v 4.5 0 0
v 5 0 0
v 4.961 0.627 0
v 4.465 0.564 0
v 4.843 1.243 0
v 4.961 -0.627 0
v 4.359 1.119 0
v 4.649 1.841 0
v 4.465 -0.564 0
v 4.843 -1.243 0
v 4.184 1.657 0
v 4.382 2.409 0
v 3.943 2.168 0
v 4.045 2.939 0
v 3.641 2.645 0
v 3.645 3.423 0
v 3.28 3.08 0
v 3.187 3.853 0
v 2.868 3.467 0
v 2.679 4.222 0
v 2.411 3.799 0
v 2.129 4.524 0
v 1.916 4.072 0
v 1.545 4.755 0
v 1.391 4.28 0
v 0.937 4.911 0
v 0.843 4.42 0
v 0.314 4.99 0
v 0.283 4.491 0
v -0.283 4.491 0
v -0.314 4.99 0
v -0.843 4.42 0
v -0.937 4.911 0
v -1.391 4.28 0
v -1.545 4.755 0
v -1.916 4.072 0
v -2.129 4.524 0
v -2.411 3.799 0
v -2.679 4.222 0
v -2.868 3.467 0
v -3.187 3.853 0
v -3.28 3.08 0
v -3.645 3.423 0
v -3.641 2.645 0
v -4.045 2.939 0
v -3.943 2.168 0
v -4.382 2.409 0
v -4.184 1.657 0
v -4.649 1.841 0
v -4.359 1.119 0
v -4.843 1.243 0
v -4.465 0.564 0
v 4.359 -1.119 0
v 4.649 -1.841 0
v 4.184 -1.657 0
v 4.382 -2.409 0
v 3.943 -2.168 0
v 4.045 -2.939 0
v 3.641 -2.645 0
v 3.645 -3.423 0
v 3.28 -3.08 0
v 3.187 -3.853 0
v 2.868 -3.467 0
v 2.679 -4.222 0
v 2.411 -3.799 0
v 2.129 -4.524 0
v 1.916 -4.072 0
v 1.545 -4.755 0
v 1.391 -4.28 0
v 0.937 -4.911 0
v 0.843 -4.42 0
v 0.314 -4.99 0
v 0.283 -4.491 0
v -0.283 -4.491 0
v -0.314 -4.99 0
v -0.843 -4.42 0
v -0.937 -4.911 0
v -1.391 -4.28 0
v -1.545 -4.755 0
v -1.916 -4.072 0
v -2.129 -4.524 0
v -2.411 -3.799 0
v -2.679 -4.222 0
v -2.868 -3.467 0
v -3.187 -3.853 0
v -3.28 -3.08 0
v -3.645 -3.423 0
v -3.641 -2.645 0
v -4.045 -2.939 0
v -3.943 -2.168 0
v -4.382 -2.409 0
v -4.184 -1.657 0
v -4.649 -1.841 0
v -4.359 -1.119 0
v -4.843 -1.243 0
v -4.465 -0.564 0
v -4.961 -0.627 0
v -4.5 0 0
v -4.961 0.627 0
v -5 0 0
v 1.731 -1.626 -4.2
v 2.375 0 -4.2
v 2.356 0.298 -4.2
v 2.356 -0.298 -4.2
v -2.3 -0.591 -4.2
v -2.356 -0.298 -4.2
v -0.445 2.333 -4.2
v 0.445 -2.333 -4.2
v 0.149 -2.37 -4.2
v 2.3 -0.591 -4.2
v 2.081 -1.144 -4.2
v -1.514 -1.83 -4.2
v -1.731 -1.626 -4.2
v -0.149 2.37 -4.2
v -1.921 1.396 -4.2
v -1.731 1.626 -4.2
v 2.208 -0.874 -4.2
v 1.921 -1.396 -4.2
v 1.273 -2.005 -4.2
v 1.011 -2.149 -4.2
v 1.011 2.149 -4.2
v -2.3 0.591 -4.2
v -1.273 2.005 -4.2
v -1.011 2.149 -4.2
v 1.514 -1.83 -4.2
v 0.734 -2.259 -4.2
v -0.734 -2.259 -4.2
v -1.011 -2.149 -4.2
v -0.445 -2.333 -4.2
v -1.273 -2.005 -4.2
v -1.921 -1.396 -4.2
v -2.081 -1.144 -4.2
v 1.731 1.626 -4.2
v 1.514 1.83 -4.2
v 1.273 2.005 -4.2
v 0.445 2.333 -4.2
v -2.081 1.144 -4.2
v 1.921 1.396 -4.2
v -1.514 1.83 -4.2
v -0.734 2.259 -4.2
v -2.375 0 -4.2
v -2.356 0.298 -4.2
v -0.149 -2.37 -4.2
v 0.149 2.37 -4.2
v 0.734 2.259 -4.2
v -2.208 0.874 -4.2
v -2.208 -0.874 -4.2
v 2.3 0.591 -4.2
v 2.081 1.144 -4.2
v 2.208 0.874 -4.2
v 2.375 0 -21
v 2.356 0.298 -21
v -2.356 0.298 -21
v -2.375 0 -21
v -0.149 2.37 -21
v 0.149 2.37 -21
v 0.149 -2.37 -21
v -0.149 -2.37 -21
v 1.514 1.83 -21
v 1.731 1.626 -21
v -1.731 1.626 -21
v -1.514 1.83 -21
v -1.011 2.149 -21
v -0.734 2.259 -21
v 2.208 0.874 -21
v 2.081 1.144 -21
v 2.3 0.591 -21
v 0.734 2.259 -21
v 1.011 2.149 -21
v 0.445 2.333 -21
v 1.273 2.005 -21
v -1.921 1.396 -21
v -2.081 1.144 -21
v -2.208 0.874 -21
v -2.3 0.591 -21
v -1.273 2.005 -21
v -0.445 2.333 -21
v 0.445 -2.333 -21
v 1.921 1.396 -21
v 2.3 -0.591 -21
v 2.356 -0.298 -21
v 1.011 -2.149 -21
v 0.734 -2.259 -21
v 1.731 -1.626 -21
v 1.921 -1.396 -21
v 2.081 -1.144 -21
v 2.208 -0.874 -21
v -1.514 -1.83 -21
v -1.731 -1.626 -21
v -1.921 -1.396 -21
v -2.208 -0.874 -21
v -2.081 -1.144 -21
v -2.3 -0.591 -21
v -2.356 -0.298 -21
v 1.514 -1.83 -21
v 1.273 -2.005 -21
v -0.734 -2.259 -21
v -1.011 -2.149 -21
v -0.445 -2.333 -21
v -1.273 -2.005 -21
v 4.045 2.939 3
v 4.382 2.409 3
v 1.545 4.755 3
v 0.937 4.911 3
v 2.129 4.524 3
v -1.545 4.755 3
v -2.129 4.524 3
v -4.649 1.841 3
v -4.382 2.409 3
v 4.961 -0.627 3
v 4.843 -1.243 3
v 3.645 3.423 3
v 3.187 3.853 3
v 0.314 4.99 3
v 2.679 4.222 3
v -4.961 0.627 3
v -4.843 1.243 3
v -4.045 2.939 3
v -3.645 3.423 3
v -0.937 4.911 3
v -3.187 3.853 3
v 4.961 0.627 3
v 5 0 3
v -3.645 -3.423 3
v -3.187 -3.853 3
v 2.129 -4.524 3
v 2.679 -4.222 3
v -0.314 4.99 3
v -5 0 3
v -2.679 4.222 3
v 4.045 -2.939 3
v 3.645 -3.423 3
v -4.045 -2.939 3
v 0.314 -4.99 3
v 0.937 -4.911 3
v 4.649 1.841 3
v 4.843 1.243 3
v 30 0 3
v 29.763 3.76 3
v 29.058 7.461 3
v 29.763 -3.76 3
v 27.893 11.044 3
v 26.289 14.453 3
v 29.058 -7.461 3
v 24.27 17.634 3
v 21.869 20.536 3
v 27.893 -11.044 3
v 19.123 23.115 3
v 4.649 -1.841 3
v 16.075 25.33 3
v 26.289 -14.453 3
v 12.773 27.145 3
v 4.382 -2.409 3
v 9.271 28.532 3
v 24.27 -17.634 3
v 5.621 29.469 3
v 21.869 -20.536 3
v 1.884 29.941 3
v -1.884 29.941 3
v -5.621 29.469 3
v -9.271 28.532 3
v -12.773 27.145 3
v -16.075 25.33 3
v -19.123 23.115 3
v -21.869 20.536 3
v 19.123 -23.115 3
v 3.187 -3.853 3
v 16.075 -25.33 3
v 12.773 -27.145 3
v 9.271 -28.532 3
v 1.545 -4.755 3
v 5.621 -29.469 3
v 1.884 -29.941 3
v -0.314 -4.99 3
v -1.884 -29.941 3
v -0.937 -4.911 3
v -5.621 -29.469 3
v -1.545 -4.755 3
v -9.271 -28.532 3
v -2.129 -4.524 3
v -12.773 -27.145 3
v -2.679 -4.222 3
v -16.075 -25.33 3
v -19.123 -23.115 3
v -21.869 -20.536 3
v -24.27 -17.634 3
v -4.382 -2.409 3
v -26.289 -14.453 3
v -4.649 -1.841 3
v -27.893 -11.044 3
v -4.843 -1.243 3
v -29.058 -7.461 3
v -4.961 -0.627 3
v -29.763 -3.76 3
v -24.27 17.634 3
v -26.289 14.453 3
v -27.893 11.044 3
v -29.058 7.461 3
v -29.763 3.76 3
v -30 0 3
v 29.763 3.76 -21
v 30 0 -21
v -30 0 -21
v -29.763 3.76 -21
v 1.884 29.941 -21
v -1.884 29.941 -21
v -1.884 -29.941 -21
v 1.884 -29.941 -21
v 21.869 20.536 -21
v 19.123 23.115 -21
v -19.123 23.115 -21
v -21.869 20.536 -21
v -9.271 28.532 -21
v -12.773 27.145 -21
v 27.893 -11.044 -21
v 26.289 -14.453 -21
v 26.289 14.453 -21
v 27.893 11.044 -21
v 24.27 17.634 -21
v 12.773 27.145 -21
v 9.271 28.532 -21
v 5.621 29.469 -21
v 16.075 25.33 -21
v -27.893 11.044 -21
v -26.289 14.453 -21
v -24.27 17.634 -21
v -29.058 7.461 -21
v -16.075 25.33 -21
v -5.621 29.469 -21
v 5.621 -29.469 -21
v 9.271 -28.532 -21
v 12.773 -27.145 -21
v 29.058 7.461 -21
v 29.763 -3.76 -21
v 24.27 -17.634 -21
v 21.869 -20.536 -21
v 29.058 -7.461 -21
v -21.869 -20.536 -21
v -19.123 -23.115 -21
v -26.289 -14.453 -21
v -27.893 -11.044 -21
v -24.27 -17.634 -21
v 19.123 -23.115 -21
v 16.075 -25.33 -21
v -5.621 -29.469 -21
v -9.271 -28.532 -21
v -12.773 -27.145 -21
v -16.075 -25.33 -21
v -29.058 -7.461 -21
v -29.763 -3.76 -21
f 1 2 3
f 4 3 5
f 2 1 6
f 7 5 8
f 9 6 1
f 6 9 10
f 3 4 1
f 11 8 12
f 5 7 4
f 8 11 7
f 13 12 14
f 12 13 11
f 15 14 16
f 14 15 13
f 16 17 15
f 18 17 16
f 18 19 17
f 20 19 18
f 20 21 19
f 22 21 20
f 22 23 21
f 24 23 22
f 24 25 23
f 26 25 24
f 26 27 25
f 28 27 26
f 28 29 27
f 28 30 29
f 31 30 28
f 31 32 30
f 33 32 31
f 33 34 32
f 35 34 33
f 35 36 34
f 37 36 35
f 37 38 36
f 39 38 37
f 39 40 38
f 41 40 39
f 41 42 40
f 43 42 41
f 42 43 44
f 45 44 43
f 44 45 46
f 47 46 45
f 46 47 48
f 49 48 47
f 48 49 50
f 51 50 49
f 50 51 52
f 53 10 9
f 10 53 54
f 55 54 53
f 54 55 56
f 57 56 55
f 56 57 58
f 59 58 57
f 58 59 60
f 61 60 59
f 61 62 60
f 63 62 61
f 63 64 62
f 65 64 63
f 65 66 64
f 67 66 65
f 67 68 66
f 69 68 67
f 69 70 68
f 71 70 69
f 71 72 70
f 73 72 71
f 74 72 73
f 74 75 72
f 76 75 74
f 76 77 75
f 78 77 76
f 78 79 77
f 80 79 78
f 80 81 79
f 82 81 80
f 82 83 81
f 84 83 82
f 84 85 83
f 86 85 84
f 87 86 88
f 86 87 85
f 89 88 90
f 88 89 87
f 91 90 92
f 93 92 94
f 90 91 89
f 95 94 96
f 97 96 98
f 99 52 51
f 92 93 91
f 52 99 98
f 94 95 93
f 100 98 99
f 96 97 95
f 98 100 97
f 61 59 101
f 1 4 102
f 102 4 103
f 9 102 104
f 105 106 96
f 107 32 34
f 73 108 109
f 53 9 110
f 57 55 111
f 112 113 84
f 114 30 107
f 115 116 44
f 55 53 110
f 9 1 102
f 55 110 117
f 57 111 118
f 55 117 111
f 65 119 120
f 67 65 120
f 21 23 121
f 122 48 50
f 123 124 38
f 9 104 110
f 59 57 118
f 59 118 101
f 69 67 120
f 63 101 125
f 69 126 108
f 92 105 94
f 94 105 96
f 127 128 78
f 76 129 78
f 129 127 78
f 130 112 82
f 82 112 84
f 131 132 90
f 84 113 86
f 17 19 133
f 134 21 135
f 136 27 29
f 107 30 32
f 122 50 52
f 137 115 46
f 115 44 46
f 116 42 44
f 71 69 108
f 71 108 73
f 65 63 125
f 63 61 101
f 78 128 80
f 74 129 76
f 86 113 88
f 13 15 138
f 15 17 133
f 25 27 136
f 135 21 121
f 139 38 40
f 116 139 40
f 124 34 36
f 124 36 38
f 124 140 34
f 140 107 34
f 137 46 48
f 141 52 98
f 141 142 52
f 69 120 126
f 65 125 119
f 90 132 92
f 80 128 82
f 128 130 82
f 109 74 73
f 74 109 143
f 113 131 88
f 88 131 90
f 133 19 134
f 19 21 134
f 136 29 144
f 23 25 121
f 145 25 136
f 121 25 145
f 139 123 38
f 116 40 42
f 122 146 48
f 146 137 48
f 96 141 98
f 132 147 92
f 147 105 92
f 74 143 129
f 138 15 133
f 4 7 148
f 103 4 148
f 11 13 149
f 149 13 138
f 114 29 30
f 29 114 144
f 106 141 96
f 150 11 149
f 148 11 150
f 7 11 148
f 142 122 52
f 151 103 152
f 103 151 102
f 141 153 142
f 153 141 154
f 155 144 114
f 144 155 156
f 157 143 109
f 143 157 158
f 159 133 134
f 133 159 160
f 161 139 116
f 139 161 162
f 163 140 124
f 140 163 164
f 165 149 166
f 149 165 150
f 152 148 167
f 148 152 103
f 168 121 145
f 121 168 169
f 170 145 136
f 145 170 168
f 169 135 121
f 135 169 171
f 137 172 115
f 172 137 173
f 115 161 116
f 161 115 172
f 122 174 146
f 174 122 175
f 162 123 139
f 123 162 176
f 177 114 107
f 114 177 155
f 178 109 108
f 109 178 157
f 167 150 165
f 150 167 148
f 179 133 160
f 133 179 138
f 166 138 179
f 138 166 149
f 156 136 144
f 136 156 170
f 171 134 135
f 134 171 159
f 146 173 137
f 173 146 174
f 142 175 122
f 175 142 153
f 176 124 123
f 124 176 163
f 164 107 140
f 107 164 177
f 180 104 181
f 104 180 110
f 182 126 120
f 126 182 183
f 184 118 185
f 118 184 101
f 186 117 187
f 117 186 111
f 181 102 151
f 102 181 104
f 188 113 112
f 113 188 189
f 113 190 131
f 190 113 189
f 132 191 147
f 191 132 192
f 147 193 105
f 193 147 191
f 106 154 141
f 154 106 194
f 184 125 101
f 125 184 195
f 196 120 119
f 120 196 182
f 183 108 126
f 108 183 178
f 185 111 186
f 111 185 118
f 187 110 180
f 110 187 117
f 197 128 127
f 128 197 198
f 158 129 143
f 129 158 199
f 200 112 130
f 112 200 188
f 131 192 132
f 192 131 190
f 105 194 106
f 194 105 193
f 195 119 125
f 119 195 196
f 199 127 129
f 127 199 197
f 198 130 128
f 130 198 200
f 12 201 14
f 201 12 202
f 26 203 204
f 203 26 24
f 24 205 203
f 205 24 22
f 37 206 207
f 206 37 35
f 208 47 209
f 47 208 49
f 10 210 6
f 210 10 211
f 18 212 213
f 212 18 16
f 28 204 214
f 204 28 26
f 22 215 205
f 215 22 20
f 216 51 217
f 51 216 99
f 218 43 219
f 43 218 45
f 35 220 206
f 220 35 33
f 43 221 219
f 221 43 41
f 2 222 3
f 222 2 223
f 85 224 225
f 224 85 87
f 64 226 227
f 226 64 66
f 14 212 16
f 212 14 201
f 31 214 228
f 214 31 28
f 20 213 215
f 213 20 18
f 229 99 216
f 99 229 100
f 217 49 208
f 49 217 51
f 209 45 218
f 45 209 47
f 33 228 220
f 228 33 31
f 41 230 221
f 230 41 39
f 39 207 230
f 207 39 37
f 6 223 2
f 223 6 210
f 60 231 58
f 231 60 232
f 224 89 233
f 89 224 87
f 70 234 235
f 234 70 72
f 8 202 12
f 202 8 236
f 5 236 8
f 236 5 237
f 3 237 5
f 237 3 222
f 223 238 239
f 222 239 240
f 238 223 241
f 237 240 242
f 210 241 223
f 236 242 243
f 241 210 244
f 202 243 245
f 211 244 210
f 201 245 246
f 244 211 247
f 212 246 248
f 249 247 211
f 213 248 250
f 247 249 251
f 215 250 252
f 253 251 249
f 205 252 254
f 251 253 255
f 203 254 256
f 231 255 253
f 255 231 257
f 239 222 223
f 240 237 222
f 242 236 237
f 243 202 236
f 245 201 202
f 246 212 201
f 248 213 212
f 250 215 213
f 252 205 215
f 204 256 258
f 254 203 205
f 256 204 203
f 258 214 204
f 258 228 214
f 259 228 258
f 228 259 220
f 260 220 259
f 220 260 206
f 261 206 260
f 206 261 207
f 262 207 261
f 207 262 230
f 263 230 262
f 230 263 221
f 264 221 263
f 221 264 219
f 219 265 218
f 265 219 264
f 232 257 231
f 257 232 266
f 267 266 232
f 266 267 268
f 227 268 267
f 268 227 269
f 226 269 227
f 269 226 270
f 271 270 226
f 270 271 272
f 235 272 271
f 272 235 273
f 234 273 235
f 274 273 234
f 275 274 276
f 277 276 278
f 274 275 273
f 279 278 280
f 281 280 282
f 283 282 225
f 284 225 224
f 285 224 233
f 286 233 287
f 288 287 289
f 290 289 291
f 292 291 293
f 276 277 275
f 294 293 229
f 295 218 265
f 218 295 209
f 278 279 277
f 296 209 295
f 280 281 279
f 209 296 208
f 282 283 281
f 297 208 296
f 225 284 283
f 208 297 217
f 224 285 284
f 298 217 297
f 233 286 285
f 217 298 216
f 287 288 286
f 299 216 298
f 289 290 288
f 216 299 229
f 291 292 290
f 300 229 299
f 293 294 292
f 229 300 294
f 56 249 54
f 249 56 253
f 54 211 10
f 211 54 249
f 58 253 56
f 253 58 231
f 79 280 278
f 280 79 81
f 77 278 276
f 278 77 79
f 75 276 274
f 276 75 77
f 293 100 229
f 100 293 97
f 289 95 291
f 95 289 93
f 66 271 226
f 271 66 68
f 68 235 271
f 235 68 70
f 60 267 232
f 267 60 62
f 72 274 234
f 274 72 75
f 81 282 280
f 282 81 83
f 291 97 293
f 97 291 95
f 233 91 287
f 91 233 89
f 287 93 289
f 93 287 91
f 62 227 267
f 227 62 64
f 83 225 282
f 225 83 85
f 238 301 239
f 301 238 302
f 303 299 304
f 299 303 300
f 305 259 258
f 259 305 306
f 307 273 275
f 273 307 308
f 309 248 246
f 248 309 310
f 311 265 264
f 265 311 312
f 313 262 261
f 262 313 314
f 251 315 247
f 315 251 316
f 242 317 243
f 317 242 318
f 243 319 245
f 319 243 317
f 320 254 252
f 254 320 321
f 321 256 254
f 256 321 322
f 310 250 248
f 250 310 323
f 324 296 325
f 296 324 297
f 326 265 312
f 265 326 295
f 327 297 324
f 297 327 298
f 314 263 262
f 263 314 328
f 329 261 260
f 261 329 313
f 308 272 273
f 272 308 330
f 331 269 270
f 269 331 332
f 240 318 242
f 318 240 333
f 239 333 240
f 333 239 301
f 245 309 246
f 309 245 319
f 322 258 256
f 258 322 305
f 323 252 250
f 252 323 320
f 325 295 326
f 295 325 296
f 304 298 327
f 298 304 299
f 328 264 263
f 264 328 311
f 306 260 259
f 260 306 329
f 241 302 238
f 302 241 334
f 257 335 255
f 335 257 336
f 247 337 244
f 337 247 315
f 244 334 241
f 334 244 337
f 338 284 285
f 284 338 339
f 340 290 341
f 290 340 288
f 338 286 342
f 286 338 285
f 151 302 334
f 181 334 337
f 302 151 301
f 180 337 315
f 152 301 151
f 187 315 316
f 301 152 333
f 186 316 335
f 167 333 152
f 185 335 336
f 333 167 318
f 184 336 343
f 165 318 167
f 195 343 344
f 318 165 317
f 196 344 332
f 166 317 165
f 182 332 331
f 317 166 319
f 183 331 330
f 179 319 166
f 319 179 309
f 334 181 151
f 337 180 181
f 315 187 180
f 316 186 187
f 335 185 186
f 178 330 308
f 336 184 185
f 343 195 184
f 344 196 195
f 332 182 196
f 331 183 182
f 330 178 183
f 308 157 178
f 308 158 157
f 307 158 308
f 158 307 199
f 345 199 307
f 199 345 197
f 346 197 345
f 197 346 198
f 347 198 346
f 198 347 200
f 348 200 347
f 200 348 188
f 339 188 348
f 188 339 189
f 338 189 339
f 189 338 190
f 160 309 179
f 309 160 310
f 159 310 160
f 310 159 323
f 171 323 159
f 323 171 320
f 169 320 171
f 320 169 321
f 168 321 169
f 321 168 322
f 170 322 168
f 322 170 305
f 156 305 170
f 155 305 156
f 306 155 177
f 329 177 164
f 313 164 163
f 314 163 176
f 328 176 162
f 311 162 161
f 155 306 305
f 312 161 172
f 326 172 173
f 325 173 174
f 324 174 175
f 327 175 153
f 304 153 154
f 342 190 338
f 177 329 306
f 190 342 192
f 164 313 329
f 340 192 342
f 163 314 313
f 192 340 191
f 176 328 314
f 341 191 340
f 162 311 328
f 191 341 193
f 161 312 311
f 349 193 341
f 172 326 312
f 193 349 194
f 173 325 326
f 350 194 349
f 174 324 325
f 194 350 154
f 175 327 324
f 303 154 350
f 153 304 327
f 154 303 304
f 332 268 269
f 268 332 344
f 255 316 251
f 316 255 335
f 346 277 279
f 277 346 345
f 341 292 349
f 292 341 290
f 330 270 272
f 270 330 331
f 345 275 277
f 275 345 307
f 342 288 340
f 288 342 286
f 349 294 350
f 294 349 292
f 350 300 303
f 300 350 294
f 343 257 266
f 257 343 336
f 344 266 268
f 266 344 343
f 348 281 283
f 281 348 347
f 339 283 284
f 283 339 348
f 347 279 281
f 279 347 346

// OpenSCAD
$fn = 50;

difference() {
	union() {
		translate(v = [0, 0, -21.0]) {
			cylinder(h = 24, r = 30.0);
		}
	}
	union() {
		translate(v = [0, 0, 0]) {
			rotate(a = [0, 0, 0]) {
				difference() {
					union() {
						translate(v = [0, 0, -24.0]) {
							cylinder(h = 24, r = 2.25);
						}
						translate(v = [0, 0, -4.2]) {
							cylinder(h = 4.2, r1 = 2.375, r2 = 4.5);
						}
						translate(v = [0, 0, -24.0]) {
							cylinder(h = 24, r = 2.375);
						}
						translate(v = [0, 0, -24.0]) {
							cylinder(h = 24, r = 2.25);
						}
					}
					union();
				}
			}
		}
		#cylinder(h = 3, r = 5.0);
	}
}
